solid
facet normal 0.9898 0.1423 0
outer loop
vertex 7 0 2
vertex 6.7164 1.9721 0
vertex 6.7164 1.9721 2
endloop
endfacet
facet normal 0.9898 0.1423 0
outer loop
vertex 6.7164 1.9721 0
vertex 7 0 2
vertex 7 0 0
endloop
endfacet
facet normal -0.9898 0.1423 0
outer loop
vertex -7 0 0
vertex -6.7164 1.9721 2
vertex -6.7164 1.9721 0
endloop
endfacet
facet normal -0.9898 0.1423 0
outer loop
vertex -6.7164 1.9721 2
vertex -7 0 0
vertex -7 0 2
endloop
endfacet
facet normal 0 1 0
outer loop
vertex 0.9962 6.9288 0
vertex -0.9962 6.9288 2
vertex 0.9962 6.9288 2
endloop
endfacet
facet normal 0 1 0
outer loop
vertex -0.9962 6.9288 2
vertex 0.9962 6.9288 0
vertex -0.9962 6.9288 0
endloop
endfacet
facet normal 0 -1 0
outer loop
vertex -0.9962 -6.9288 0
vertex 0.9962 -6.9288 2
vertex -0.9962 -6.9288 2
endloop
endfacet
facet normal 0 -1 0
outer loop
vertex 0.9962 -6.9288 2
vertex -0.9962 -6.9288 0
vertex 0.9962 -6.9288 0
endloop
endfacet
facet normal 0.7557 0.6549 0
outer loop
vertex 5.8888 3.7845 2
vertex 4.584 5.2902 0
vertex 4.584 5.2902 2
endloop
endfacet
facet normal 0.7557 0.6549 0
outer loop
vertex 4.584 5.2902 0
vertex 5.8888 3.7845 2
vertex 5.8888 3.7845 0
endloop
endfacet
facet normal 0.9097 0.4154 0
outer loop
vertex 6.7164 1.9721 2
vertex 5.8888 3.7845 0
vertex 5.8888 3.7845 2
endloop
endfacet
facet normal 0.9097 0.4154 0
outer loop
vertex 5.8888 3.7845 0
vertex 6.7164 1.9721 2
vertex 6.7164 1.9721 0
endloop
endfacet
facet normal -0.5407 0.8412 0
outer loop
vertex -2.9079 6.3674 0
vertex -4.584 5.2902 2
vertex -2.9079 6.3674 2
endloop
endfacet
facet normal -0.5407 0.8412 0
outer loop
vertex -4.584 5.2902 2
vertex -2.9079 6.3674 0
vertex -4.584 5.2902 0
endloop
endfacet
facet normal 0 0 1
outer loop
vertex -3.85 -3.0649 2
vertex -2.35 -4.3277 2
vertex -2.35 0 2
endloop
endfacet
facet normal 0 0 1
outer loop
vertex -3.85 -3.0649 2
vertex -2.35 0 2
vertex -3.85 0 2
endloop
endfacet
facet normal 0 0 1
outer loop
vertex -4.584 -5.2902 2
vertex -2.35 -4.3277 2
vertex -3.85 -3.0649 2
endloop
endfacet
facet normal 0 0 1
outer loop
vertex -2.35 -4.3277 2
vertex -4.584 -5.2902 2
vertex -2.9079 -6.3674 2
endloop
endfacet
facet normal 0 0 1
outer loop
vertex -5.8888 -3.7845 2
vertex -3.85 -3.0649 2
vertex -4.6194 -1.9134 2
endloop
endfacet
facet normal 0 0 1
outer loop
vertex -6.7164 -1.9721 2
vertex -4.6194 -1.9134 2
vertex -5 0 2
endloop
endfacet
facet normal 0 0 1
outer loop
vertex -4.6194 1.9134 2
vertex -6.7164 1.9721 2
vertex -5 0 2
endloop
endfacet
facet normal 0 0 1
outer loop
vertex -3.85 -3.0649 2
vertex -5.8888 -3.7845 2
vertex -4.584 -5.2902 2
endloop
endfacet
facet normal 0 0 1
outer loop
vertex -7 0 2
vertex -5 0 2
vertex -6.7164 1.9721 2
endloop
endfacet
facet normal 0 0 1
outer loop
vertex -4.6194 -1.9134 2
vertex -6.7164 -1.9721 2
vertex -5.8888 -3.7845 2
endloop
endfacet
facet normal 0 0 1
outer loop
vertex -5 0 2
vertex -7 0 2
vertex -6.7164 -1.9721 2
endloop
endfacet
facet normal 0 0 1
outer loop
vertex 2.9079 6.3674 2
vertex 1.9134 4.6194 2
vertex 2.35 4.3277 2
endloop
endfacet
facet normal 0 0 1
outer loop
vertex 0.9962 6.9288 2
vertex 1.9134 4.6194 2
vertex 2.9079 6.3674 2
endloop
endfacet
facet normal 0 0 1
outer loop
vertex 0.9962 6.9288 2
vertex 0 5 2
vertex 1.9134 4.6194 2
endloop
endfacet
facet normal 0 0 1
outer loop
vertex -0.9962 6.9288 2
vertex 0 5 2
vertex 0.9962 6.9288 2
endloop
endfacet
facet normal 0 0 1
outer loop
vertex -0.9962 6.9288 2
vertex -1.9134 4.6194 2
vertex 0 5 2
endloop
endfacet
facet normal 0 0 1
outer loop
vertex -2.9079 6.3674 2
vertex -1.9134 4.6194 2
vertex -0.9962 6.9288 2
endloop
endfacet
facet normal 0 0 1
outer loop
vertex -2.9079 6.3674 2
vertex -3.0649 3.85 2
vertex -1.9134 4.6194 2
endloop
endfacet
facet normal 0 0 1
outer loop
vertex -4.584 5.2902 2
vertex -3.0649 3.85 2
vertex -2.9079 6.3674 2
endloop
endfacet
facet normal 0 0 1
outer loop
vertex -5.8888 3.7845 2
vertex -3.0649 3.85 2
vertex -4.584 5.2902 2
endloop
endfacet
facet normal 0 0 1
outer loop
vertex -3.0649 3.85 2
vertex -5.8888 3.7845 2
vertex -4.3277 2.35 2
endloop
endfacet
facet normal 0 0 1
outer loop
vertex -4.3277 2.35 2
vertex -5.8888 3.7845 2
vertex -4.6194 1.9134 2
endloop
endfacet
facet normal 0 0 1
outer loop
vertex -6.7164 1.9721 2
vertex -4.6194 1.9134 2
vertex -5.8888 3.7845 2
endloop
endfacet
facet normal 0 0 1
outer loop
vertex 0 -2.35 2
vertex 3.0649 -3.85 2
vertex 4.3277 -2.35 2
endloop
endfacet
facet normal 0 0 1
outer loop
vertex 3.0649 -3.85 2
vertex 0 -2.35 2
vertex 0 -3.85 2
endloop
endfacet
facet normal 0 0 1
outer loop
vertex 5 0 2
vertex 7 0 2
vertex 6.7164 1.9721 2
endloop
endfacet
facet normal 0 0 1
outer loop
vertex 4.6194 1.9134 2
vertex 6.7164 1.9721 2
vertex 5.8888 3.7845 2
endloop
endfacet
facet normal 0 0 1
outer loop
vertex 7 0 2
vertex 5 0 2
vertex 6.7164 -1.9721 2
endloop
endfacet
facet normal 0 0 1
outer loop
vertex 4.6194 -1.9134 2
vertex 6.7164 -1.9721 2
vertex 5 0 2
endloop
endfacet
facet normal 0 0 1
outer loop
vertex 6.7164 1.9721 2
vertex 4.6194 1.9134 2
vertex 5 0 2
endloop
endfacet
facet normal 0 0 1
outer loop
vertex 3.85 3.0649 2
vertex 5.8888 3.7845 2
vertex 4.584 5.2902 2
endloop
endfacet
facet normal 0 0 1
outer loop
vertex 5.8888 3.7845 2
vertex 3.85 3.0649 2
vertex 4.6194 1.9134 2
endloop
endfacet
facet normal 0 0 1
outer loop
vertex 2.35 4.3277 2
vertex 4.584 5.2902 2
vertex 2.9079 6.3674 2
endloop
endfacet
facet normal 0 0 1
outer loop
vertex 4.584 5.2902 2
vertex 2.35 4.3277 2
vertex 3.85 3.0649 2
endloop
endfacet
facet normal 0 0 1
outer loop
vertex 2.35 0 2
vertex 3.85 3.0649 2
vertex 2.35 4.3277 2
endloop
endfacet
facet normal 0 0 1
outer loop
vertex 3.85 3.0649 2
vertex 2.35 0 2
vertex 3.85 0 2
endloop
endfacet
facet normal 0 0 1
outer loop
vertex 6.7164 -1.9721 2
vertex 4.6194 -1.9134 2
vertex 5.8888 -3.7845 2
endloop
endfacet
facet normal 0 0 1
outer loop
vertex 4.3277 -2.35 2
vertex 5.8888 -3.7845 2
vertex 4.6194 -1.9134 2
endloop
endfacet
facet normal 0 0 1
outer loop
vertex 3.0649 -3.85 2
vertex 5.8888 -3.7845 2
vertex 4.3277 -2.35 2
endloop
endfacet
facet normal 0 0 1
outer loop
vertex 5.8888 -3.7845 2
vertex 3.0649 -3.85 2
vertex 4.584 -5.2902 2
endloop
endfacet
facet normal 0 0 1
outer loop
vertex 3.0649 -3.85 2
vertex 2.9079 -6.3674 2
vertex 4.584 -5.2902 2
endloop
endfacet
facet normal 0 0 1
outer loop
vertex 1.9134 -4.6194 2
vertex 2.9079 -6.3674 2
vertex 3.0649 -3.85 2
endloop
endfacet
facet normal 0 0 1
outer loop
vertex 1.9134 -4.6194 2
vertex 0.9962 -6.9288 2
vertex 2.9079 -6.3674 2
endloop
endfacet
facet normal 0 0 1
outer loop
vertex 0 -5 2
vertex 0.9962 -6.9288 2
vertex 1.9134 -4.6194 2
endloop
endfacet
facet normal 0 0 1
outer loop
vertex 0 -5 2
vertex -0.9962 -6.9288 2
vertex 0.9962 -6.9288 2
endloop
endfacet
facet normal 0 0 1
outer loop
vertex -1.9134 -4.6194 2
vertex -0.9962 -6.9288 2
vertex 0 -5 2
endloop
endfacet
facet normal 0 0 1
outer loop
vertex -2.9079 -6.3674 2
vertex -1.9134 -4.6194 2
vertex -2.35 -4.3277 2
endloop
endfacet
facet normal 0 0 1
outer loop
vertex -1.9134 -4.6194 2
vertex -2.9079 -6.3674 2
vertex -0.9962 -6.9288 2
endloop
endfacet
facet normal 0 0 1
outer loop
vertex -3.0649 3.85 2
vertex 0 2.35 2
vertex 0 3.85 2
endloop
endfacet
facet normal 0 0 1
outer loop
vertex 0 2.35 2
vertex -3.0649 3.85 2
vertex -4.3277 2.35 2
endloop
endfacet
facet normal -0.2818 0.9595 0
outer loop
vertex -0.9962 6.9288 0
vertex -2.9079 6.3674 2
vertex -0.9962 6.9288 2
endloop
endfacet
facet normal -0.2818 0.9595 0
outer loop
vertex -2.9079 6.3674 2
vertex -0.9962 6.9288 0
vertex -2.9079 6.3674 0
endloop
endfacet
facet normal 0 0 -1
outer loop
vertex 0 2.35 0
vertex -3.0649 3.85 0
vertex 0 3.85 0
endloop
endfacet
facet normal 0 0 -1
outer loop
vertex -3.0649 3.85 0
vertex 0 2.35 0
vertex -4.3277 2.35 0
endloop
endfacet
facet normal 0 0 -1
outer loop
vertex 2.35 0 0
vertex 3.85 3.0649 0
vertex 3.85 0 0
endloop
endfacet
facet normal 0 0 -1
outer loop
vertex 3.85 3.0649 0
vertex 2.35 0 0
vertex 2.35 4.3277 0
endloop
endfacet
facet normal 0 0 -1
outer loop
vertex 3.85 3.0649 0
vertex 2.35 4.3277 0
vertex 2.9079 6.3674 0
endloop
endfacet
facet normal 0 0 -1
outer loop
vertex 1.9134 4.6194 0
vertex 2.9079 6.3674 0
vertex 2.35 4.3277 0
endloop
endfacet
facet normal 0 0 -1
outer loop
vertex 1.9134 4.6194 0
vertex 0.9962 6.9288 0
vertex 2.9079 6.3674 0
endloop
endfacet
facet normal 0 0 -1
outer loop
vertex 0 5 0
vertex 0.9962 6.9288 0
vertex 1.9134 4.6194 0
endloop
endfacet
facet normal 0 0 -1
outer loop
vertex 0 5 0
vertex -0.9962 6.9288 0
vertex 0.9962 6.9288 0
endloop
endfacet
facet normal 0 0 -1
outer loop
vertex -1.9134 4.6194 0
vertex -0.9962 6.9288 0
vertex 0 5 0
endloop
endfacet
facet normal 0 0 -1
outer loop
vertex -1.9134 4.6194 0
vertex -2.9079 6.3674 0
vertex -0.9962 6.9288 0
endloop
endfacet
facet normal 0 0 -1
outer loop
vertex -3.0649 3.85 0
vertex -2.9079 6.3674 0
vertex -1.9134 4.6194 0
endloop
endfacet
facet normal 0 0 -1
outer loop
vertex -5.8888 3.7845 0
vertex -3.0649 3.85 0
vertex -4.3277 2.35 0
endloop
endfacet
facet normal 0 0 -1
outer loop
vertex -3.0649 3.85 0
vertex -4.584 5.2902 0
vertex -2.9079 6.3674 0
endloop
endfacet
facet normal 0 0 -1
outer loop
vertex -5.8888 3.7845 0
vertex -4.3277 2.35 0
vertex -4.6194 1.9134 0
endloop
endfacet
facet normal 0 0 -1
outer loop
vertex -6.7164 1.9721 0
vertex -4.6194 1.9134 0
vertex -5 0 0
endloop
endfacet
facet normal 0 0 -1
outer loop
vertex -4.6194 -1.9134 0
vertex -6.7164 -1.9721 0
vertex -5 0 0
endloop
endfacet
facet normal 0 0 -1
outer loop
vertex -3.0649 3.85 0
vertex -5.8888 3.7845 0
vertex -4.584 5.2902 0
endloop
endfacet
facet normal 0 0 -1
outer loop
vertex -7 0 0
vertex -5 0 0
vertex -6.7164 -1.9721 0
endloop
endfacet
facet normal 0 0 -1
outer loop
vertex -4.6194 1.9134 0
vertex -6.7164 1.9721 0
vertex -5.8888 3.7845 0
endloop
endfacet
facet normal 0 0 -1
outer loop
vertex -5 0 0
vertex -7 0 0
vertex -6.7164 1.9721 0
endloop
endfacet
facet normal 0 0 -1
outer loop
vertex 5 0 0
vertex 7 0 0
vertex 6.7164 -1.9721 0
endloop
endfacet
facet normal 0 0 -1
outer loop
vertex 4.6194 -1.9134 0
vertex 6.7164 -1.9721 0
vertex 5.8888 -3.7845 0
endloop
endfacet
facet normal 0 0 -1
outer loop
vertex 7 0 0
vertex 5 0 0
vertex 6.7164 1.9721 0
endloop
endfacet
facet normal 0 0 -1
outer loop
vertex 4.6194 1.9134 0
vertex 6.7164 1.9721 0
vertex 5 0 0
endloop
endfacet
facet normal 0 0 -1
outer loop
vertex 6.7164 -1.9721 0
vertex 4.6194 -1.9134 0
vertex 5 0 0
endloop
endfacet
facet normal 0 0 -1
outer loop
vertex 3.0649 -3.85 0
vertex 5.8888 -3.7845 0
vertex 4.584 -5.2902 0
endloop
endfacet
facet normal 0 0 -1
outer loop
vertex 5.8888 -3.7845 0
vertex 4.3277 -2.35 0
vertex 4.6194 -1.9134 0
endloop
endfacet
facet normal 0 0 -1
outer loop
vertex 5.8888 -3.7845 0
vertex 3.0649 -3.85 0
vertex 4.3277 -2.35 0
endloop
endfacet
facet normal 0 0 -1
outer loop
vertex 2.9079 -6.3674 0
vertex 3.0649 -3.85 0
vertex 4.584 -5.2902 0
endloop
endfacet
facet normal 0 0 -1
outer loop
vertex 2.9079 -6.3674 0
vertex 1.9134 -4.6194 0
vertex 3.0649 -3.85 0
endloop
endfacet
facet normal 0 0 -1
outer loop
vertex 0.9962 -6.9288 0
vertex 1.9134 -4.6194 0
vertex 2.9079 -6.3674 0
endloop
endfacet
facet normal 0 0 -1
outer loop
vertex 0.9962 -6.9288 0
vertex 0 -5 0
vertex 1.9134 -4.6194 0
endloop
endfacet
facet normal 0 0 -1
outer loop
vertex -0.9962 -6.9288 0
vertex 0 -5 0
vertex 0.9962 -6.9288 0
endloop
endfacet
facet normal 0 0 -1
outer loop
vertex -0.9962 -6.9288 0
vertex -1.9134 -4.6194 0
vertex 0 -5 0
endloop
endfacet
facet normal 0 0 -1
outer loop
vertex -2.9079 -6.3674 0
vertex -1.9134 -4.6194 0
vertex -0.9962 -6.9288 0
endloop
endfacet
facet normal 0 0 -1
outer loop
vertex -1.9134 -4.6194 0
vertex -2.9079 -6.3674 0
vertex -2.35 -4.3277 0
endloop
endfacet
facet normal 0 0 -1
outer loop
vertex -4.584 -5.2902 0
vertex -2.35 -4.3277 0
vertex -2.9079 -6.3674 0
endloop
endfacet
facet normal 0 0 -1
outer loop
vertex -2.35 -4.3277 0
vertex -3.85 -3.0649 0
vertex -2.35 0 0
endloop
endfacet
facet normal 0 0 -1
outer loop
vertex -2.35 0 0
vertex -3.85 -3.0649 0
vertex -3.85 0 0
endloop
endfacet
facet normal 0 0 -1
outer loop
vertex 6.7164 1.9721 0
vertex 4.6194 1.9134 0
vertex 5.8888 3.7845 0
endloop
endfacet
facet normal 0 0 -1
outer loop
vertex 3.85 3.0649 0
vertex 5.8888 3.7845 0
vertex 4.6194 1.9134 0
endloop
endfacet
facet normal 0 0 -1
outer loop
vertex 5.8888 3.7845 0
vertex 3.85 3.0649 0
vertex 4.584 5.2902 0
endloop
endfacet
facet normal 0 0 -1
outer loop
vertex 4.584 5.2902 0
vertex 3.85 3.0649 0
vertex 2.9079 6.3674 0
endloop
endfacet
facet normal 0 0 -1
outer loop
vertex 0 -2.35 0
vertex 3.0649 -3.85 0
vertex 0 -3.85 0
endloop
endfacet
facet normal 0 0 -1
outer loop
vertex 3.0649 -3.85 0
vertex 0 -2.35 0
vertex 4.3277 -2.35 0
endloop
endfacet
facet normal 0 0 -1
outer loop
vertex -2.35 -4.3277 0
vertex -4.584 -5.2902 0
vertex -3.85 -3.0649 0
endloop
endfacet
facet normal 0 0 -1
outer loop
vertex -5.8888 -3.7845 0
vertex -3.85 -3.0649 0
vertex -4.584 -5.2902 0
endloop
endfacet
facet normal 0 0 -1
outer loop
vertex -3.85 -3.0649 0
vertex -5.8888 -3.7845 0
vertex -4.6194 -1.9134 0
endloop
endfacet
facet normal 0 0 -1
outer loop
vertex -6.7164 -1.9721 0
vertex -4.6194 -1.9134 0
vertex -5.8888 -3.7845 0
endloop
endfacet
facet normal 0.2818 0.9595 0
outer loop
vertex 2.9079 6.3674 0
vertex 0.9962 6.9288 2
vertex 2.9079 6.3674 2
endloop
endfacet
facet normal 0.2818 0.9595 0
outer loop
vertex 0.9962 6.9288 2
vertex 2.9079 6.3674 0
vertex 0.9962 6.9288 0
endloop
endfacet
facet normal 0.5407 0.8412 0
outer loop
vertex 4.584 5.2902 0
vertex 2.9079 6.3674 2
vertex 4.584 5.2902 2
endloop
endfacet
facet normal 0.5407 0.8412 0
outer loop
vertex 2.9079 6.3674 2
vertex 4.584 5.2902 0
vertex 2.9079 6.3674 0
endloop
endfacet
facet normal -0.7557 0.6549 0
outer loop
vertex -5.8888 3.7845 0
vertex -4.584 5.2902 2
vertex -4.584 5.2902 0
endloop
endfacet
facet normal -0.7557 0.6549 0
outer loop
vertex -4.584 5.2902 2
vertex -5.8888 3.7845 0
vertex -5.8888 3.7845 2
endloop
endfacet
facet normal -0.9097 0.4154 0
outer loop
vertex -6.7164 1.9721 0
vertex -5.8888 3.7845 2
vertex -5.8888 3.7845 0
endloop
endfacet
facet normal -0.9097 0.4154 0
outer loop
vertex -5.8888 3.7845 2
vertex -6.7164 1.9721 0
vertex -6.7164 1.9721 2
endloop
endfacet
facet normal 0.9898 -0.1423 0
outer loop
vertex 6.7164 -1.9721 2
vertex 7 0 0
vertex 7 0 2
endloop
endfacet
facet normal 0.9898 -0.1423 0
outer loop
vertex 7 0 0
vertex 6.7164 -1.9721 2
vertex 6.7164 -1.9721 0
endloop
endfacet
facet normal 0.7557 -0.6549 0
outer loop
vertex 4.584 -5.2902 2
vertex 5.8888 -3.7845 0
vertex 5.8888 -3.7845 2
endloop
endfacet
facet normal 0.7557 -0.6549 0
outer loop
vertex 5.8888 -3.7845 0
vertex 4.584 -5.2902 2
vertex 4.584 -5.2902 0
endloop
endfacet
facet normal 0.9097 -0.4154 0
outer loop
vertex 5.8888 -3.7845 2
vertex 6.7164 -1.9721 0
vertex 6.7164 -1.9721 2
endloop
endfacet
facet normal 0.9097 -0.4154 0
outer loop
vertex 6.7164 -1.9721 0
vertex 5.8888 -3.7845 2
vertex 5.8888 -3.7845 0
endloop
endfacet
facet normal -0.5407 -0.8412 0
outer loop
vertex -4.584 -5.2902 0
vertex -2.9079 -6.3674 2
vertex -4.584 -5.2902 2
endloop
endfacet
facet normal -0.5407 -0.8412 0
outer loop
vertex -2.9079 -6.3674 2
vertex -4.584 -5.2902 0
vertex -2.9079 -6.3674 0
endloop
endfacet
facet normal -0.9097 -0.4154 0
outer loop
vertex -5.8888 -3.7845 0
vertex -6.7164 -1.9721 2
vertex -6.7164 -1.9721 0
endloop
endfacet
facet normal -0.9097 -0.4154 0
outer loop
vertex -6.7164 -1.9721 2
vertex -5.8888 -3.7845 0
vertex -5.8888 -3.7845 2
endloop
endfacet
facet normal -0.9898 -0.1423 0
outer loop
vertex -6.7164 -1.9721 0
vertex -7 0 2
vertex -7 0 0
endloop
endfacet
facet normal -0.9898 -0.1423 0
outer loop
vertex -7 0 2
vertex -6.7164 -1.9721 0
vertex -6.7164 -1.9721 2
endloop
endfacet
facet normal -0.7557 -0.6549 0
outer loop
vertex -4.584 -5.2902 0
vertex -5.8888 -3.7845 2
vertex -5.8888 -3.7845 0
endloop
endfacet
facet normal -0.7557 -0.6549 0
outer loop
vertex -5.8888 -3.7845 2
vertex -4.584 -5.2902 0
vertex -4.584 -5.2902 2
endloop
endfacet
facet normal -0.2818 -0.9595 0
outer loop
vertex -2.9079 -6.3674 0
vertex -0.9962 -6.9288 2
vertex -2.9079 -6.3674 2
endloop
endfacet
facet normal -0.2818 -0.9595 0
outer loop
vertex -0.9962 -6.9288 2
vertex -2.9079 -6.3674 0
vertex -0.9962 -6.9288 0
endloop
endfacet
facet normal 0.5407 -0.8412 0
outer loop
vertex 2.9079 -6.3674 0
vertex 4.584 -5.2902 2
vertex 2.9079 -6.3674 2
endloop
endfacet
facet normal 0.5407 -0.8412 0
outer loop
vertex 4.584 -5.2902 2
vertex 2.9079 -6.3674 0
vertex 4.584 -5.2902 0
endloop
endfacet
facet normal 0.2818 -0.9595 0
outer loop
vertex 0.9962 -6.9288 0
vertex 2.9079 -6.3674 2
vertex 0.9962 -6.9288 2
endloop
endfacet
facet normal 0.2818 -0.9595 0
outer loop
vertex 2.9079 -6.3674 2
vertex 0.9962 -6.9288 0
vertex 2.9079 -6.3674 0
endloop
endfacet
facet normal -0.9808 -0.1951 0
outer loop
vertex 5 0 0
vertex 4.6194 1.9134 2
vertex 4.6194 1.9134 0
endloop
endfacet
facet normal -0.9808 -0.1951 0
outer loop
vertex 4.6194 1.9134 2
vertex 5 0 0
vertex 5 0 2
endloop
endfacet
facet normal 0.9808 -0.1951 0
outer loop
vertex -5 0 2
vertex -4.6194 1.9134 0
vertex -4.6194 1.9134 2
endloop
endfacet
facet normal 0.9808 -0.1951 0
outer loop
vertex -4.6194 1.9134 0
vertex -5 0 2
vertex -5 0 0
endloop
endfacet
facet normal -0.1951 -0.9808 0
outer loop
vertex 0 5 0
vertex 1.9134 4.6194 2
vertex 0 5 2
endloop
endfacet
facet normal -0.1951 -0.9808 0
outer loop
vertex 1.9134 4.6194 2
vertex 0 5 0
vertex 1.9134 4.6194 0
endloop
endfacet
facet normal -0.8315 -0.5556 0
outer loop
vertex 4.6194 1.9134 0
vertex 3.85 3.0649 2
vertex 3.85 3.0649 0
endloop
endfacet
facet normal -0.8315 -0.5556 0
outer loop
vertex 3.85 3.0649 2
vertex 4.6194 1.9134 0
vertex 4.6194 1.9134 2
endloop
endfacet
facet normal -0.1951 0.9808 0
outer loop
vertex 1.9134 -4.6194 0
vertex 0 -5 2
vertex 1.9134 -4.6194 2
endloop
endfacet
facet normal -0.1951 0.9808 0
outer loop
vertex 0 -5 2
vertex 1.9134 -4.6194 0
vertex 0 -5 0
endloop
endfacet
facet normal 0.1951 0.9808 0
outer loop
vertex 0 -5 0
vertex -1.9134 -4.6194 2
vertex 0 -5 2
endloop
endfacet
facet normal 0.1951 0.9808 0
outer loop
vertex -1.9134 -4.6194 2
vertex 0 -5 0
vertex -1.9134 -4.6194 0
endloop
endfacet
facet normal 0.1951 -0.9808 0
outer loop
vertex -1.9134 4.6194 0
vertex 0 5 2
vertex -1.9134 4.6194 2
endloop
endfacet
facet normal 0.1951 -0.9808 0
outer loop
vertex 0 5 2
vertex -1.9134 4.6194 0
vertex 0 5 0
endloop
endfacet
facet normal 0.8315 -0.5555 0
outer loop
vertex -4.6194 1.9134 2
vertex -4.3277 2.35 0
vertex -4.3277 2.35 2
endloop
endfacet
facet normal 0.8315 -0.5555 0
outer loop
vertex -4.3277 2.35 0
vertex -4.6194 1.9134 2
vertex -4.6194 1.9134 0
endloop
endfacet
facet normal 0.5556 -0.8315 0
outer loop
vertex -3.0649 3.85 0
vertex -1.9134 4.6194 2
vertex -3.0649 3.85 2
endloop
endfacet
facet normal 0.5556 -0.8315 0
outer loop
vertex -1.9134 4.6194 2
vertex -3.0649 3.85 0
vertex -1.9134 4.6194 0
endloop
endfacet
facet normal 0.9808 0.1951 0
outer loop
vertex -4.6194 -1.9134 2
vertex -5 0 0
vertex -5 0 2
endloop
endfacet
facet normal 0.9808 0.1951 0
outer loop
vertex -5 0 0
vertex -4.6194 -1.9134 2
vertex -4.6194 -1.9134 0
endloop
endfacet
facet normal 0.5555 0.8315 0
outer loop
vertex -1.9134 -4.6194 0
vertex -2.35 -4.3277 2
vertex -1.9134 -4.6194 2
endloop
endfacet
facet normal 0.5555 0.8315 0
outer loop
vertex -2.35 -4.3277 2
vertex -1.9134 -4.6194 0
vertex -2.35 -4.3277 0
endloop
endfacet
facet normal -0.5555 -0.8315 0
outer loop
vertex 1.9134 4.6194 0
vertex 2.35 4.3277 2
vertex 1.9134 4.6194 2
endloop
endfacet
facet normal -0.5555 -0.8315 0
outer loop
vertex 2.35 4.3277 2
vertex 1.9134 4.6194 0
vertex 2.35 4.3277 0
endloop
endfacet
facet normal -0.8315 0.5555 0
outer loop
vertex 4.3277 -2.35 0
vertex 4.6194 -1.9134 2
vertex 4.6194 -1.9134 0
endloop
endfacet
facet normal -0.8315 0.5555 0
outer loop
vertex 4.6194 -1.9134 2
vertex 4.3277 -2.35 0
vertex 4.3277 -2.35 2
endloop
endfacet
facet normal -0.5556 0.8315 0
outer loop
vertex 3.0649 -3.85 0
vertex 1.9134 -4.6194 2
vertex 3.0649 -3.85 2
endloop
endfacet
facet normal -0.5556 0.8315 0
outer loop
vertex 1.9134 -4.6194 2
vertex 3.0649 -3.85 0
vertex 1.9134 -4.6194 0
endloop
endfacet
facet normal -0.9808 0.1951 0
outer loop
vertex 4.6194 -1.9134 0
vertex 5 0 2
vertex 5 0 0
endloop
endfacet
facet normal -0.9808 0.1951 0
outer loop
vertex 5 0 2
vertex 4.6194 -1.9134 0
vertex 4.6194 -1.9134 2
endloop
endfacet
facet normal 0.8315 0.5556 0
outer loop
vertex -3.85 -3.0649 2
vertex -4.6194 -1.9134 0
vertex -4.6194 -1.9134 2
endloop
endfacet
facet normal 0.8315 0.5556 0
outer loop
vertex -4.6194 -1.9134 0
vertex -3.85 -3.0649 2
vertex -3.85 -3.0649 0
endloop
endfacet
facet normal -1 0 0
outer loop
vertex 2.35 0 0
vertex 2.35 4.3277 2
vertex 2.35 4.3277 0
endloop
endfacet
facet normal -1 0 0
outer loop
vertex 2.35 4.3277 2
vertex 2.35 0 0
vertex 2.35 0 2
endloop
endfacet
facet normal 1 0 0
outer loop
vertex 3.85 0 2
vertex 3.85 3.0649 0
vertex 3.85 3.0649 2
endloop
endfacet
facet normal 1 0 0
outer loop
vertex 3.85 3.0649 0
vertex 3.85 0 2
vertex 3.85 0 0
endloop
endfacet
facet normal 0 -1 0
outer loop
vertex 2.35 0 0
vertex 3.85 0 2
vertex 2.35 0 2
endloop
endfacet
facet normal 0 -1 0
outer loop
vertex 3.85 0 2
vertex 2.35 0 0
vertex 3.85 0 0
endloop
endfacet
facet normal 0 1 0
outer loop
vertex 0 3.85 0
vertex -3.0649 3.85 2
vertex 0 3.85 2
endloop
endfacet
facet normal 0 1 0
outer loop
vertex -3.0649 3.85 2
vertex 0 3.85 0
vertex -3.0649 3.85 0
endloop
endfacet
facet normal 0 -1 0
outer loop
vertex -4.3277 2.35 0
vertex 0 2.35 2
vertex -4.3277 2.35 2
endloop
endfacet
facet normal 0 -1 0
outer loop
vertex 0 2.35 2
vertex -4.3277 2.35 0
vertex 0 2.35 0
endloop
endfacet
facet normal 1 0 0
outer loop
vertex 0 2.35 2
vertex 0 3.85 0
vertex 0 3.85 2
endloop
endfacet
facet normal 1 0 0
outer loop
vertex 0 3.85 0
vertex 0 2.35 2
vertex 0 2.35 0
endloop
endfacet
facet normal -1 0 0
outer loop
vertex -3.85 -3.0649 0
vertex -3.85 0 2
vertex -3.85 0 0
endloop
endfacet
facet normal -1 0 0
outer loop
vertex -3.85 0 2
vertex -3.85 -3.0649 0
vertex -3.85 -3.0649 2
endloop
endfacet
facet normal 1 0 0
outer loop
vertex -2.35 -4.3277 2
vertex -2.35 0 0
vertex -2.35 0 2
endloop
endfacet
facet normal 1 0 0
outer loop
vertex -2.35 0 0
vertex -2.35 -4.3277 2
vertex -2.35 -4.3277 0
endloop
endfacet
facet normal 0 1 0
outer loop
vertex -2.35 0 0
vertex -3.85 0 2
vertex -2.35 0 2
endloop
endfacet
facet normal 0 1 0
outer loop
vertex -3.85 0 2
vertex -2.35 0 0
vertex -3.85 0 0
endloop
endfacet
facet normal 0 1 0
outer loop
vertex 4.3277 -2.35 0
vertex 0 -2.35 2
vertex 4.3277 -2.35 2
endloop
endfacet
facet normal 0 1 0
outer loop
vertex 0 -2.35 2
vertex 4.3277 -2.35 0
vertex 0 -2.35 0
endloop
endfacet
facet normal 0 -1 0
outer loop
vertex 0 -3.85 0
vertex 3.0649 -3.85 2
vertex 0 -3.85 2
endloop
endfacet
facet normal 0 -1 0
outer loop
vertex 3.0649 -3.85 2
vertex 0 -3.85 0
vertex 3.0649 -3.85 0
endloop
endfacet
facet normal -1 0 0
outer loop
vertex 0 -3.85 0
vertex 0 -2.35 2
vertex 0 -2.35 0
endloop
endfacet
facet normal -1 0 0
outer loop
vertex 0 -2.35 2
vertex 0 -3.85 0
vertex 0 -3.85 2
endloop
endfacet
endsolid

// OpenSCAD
// this file just pulls out one module from picamera_2

use <./picamera_2.scad>;

picamera_2_lens_gripper();
